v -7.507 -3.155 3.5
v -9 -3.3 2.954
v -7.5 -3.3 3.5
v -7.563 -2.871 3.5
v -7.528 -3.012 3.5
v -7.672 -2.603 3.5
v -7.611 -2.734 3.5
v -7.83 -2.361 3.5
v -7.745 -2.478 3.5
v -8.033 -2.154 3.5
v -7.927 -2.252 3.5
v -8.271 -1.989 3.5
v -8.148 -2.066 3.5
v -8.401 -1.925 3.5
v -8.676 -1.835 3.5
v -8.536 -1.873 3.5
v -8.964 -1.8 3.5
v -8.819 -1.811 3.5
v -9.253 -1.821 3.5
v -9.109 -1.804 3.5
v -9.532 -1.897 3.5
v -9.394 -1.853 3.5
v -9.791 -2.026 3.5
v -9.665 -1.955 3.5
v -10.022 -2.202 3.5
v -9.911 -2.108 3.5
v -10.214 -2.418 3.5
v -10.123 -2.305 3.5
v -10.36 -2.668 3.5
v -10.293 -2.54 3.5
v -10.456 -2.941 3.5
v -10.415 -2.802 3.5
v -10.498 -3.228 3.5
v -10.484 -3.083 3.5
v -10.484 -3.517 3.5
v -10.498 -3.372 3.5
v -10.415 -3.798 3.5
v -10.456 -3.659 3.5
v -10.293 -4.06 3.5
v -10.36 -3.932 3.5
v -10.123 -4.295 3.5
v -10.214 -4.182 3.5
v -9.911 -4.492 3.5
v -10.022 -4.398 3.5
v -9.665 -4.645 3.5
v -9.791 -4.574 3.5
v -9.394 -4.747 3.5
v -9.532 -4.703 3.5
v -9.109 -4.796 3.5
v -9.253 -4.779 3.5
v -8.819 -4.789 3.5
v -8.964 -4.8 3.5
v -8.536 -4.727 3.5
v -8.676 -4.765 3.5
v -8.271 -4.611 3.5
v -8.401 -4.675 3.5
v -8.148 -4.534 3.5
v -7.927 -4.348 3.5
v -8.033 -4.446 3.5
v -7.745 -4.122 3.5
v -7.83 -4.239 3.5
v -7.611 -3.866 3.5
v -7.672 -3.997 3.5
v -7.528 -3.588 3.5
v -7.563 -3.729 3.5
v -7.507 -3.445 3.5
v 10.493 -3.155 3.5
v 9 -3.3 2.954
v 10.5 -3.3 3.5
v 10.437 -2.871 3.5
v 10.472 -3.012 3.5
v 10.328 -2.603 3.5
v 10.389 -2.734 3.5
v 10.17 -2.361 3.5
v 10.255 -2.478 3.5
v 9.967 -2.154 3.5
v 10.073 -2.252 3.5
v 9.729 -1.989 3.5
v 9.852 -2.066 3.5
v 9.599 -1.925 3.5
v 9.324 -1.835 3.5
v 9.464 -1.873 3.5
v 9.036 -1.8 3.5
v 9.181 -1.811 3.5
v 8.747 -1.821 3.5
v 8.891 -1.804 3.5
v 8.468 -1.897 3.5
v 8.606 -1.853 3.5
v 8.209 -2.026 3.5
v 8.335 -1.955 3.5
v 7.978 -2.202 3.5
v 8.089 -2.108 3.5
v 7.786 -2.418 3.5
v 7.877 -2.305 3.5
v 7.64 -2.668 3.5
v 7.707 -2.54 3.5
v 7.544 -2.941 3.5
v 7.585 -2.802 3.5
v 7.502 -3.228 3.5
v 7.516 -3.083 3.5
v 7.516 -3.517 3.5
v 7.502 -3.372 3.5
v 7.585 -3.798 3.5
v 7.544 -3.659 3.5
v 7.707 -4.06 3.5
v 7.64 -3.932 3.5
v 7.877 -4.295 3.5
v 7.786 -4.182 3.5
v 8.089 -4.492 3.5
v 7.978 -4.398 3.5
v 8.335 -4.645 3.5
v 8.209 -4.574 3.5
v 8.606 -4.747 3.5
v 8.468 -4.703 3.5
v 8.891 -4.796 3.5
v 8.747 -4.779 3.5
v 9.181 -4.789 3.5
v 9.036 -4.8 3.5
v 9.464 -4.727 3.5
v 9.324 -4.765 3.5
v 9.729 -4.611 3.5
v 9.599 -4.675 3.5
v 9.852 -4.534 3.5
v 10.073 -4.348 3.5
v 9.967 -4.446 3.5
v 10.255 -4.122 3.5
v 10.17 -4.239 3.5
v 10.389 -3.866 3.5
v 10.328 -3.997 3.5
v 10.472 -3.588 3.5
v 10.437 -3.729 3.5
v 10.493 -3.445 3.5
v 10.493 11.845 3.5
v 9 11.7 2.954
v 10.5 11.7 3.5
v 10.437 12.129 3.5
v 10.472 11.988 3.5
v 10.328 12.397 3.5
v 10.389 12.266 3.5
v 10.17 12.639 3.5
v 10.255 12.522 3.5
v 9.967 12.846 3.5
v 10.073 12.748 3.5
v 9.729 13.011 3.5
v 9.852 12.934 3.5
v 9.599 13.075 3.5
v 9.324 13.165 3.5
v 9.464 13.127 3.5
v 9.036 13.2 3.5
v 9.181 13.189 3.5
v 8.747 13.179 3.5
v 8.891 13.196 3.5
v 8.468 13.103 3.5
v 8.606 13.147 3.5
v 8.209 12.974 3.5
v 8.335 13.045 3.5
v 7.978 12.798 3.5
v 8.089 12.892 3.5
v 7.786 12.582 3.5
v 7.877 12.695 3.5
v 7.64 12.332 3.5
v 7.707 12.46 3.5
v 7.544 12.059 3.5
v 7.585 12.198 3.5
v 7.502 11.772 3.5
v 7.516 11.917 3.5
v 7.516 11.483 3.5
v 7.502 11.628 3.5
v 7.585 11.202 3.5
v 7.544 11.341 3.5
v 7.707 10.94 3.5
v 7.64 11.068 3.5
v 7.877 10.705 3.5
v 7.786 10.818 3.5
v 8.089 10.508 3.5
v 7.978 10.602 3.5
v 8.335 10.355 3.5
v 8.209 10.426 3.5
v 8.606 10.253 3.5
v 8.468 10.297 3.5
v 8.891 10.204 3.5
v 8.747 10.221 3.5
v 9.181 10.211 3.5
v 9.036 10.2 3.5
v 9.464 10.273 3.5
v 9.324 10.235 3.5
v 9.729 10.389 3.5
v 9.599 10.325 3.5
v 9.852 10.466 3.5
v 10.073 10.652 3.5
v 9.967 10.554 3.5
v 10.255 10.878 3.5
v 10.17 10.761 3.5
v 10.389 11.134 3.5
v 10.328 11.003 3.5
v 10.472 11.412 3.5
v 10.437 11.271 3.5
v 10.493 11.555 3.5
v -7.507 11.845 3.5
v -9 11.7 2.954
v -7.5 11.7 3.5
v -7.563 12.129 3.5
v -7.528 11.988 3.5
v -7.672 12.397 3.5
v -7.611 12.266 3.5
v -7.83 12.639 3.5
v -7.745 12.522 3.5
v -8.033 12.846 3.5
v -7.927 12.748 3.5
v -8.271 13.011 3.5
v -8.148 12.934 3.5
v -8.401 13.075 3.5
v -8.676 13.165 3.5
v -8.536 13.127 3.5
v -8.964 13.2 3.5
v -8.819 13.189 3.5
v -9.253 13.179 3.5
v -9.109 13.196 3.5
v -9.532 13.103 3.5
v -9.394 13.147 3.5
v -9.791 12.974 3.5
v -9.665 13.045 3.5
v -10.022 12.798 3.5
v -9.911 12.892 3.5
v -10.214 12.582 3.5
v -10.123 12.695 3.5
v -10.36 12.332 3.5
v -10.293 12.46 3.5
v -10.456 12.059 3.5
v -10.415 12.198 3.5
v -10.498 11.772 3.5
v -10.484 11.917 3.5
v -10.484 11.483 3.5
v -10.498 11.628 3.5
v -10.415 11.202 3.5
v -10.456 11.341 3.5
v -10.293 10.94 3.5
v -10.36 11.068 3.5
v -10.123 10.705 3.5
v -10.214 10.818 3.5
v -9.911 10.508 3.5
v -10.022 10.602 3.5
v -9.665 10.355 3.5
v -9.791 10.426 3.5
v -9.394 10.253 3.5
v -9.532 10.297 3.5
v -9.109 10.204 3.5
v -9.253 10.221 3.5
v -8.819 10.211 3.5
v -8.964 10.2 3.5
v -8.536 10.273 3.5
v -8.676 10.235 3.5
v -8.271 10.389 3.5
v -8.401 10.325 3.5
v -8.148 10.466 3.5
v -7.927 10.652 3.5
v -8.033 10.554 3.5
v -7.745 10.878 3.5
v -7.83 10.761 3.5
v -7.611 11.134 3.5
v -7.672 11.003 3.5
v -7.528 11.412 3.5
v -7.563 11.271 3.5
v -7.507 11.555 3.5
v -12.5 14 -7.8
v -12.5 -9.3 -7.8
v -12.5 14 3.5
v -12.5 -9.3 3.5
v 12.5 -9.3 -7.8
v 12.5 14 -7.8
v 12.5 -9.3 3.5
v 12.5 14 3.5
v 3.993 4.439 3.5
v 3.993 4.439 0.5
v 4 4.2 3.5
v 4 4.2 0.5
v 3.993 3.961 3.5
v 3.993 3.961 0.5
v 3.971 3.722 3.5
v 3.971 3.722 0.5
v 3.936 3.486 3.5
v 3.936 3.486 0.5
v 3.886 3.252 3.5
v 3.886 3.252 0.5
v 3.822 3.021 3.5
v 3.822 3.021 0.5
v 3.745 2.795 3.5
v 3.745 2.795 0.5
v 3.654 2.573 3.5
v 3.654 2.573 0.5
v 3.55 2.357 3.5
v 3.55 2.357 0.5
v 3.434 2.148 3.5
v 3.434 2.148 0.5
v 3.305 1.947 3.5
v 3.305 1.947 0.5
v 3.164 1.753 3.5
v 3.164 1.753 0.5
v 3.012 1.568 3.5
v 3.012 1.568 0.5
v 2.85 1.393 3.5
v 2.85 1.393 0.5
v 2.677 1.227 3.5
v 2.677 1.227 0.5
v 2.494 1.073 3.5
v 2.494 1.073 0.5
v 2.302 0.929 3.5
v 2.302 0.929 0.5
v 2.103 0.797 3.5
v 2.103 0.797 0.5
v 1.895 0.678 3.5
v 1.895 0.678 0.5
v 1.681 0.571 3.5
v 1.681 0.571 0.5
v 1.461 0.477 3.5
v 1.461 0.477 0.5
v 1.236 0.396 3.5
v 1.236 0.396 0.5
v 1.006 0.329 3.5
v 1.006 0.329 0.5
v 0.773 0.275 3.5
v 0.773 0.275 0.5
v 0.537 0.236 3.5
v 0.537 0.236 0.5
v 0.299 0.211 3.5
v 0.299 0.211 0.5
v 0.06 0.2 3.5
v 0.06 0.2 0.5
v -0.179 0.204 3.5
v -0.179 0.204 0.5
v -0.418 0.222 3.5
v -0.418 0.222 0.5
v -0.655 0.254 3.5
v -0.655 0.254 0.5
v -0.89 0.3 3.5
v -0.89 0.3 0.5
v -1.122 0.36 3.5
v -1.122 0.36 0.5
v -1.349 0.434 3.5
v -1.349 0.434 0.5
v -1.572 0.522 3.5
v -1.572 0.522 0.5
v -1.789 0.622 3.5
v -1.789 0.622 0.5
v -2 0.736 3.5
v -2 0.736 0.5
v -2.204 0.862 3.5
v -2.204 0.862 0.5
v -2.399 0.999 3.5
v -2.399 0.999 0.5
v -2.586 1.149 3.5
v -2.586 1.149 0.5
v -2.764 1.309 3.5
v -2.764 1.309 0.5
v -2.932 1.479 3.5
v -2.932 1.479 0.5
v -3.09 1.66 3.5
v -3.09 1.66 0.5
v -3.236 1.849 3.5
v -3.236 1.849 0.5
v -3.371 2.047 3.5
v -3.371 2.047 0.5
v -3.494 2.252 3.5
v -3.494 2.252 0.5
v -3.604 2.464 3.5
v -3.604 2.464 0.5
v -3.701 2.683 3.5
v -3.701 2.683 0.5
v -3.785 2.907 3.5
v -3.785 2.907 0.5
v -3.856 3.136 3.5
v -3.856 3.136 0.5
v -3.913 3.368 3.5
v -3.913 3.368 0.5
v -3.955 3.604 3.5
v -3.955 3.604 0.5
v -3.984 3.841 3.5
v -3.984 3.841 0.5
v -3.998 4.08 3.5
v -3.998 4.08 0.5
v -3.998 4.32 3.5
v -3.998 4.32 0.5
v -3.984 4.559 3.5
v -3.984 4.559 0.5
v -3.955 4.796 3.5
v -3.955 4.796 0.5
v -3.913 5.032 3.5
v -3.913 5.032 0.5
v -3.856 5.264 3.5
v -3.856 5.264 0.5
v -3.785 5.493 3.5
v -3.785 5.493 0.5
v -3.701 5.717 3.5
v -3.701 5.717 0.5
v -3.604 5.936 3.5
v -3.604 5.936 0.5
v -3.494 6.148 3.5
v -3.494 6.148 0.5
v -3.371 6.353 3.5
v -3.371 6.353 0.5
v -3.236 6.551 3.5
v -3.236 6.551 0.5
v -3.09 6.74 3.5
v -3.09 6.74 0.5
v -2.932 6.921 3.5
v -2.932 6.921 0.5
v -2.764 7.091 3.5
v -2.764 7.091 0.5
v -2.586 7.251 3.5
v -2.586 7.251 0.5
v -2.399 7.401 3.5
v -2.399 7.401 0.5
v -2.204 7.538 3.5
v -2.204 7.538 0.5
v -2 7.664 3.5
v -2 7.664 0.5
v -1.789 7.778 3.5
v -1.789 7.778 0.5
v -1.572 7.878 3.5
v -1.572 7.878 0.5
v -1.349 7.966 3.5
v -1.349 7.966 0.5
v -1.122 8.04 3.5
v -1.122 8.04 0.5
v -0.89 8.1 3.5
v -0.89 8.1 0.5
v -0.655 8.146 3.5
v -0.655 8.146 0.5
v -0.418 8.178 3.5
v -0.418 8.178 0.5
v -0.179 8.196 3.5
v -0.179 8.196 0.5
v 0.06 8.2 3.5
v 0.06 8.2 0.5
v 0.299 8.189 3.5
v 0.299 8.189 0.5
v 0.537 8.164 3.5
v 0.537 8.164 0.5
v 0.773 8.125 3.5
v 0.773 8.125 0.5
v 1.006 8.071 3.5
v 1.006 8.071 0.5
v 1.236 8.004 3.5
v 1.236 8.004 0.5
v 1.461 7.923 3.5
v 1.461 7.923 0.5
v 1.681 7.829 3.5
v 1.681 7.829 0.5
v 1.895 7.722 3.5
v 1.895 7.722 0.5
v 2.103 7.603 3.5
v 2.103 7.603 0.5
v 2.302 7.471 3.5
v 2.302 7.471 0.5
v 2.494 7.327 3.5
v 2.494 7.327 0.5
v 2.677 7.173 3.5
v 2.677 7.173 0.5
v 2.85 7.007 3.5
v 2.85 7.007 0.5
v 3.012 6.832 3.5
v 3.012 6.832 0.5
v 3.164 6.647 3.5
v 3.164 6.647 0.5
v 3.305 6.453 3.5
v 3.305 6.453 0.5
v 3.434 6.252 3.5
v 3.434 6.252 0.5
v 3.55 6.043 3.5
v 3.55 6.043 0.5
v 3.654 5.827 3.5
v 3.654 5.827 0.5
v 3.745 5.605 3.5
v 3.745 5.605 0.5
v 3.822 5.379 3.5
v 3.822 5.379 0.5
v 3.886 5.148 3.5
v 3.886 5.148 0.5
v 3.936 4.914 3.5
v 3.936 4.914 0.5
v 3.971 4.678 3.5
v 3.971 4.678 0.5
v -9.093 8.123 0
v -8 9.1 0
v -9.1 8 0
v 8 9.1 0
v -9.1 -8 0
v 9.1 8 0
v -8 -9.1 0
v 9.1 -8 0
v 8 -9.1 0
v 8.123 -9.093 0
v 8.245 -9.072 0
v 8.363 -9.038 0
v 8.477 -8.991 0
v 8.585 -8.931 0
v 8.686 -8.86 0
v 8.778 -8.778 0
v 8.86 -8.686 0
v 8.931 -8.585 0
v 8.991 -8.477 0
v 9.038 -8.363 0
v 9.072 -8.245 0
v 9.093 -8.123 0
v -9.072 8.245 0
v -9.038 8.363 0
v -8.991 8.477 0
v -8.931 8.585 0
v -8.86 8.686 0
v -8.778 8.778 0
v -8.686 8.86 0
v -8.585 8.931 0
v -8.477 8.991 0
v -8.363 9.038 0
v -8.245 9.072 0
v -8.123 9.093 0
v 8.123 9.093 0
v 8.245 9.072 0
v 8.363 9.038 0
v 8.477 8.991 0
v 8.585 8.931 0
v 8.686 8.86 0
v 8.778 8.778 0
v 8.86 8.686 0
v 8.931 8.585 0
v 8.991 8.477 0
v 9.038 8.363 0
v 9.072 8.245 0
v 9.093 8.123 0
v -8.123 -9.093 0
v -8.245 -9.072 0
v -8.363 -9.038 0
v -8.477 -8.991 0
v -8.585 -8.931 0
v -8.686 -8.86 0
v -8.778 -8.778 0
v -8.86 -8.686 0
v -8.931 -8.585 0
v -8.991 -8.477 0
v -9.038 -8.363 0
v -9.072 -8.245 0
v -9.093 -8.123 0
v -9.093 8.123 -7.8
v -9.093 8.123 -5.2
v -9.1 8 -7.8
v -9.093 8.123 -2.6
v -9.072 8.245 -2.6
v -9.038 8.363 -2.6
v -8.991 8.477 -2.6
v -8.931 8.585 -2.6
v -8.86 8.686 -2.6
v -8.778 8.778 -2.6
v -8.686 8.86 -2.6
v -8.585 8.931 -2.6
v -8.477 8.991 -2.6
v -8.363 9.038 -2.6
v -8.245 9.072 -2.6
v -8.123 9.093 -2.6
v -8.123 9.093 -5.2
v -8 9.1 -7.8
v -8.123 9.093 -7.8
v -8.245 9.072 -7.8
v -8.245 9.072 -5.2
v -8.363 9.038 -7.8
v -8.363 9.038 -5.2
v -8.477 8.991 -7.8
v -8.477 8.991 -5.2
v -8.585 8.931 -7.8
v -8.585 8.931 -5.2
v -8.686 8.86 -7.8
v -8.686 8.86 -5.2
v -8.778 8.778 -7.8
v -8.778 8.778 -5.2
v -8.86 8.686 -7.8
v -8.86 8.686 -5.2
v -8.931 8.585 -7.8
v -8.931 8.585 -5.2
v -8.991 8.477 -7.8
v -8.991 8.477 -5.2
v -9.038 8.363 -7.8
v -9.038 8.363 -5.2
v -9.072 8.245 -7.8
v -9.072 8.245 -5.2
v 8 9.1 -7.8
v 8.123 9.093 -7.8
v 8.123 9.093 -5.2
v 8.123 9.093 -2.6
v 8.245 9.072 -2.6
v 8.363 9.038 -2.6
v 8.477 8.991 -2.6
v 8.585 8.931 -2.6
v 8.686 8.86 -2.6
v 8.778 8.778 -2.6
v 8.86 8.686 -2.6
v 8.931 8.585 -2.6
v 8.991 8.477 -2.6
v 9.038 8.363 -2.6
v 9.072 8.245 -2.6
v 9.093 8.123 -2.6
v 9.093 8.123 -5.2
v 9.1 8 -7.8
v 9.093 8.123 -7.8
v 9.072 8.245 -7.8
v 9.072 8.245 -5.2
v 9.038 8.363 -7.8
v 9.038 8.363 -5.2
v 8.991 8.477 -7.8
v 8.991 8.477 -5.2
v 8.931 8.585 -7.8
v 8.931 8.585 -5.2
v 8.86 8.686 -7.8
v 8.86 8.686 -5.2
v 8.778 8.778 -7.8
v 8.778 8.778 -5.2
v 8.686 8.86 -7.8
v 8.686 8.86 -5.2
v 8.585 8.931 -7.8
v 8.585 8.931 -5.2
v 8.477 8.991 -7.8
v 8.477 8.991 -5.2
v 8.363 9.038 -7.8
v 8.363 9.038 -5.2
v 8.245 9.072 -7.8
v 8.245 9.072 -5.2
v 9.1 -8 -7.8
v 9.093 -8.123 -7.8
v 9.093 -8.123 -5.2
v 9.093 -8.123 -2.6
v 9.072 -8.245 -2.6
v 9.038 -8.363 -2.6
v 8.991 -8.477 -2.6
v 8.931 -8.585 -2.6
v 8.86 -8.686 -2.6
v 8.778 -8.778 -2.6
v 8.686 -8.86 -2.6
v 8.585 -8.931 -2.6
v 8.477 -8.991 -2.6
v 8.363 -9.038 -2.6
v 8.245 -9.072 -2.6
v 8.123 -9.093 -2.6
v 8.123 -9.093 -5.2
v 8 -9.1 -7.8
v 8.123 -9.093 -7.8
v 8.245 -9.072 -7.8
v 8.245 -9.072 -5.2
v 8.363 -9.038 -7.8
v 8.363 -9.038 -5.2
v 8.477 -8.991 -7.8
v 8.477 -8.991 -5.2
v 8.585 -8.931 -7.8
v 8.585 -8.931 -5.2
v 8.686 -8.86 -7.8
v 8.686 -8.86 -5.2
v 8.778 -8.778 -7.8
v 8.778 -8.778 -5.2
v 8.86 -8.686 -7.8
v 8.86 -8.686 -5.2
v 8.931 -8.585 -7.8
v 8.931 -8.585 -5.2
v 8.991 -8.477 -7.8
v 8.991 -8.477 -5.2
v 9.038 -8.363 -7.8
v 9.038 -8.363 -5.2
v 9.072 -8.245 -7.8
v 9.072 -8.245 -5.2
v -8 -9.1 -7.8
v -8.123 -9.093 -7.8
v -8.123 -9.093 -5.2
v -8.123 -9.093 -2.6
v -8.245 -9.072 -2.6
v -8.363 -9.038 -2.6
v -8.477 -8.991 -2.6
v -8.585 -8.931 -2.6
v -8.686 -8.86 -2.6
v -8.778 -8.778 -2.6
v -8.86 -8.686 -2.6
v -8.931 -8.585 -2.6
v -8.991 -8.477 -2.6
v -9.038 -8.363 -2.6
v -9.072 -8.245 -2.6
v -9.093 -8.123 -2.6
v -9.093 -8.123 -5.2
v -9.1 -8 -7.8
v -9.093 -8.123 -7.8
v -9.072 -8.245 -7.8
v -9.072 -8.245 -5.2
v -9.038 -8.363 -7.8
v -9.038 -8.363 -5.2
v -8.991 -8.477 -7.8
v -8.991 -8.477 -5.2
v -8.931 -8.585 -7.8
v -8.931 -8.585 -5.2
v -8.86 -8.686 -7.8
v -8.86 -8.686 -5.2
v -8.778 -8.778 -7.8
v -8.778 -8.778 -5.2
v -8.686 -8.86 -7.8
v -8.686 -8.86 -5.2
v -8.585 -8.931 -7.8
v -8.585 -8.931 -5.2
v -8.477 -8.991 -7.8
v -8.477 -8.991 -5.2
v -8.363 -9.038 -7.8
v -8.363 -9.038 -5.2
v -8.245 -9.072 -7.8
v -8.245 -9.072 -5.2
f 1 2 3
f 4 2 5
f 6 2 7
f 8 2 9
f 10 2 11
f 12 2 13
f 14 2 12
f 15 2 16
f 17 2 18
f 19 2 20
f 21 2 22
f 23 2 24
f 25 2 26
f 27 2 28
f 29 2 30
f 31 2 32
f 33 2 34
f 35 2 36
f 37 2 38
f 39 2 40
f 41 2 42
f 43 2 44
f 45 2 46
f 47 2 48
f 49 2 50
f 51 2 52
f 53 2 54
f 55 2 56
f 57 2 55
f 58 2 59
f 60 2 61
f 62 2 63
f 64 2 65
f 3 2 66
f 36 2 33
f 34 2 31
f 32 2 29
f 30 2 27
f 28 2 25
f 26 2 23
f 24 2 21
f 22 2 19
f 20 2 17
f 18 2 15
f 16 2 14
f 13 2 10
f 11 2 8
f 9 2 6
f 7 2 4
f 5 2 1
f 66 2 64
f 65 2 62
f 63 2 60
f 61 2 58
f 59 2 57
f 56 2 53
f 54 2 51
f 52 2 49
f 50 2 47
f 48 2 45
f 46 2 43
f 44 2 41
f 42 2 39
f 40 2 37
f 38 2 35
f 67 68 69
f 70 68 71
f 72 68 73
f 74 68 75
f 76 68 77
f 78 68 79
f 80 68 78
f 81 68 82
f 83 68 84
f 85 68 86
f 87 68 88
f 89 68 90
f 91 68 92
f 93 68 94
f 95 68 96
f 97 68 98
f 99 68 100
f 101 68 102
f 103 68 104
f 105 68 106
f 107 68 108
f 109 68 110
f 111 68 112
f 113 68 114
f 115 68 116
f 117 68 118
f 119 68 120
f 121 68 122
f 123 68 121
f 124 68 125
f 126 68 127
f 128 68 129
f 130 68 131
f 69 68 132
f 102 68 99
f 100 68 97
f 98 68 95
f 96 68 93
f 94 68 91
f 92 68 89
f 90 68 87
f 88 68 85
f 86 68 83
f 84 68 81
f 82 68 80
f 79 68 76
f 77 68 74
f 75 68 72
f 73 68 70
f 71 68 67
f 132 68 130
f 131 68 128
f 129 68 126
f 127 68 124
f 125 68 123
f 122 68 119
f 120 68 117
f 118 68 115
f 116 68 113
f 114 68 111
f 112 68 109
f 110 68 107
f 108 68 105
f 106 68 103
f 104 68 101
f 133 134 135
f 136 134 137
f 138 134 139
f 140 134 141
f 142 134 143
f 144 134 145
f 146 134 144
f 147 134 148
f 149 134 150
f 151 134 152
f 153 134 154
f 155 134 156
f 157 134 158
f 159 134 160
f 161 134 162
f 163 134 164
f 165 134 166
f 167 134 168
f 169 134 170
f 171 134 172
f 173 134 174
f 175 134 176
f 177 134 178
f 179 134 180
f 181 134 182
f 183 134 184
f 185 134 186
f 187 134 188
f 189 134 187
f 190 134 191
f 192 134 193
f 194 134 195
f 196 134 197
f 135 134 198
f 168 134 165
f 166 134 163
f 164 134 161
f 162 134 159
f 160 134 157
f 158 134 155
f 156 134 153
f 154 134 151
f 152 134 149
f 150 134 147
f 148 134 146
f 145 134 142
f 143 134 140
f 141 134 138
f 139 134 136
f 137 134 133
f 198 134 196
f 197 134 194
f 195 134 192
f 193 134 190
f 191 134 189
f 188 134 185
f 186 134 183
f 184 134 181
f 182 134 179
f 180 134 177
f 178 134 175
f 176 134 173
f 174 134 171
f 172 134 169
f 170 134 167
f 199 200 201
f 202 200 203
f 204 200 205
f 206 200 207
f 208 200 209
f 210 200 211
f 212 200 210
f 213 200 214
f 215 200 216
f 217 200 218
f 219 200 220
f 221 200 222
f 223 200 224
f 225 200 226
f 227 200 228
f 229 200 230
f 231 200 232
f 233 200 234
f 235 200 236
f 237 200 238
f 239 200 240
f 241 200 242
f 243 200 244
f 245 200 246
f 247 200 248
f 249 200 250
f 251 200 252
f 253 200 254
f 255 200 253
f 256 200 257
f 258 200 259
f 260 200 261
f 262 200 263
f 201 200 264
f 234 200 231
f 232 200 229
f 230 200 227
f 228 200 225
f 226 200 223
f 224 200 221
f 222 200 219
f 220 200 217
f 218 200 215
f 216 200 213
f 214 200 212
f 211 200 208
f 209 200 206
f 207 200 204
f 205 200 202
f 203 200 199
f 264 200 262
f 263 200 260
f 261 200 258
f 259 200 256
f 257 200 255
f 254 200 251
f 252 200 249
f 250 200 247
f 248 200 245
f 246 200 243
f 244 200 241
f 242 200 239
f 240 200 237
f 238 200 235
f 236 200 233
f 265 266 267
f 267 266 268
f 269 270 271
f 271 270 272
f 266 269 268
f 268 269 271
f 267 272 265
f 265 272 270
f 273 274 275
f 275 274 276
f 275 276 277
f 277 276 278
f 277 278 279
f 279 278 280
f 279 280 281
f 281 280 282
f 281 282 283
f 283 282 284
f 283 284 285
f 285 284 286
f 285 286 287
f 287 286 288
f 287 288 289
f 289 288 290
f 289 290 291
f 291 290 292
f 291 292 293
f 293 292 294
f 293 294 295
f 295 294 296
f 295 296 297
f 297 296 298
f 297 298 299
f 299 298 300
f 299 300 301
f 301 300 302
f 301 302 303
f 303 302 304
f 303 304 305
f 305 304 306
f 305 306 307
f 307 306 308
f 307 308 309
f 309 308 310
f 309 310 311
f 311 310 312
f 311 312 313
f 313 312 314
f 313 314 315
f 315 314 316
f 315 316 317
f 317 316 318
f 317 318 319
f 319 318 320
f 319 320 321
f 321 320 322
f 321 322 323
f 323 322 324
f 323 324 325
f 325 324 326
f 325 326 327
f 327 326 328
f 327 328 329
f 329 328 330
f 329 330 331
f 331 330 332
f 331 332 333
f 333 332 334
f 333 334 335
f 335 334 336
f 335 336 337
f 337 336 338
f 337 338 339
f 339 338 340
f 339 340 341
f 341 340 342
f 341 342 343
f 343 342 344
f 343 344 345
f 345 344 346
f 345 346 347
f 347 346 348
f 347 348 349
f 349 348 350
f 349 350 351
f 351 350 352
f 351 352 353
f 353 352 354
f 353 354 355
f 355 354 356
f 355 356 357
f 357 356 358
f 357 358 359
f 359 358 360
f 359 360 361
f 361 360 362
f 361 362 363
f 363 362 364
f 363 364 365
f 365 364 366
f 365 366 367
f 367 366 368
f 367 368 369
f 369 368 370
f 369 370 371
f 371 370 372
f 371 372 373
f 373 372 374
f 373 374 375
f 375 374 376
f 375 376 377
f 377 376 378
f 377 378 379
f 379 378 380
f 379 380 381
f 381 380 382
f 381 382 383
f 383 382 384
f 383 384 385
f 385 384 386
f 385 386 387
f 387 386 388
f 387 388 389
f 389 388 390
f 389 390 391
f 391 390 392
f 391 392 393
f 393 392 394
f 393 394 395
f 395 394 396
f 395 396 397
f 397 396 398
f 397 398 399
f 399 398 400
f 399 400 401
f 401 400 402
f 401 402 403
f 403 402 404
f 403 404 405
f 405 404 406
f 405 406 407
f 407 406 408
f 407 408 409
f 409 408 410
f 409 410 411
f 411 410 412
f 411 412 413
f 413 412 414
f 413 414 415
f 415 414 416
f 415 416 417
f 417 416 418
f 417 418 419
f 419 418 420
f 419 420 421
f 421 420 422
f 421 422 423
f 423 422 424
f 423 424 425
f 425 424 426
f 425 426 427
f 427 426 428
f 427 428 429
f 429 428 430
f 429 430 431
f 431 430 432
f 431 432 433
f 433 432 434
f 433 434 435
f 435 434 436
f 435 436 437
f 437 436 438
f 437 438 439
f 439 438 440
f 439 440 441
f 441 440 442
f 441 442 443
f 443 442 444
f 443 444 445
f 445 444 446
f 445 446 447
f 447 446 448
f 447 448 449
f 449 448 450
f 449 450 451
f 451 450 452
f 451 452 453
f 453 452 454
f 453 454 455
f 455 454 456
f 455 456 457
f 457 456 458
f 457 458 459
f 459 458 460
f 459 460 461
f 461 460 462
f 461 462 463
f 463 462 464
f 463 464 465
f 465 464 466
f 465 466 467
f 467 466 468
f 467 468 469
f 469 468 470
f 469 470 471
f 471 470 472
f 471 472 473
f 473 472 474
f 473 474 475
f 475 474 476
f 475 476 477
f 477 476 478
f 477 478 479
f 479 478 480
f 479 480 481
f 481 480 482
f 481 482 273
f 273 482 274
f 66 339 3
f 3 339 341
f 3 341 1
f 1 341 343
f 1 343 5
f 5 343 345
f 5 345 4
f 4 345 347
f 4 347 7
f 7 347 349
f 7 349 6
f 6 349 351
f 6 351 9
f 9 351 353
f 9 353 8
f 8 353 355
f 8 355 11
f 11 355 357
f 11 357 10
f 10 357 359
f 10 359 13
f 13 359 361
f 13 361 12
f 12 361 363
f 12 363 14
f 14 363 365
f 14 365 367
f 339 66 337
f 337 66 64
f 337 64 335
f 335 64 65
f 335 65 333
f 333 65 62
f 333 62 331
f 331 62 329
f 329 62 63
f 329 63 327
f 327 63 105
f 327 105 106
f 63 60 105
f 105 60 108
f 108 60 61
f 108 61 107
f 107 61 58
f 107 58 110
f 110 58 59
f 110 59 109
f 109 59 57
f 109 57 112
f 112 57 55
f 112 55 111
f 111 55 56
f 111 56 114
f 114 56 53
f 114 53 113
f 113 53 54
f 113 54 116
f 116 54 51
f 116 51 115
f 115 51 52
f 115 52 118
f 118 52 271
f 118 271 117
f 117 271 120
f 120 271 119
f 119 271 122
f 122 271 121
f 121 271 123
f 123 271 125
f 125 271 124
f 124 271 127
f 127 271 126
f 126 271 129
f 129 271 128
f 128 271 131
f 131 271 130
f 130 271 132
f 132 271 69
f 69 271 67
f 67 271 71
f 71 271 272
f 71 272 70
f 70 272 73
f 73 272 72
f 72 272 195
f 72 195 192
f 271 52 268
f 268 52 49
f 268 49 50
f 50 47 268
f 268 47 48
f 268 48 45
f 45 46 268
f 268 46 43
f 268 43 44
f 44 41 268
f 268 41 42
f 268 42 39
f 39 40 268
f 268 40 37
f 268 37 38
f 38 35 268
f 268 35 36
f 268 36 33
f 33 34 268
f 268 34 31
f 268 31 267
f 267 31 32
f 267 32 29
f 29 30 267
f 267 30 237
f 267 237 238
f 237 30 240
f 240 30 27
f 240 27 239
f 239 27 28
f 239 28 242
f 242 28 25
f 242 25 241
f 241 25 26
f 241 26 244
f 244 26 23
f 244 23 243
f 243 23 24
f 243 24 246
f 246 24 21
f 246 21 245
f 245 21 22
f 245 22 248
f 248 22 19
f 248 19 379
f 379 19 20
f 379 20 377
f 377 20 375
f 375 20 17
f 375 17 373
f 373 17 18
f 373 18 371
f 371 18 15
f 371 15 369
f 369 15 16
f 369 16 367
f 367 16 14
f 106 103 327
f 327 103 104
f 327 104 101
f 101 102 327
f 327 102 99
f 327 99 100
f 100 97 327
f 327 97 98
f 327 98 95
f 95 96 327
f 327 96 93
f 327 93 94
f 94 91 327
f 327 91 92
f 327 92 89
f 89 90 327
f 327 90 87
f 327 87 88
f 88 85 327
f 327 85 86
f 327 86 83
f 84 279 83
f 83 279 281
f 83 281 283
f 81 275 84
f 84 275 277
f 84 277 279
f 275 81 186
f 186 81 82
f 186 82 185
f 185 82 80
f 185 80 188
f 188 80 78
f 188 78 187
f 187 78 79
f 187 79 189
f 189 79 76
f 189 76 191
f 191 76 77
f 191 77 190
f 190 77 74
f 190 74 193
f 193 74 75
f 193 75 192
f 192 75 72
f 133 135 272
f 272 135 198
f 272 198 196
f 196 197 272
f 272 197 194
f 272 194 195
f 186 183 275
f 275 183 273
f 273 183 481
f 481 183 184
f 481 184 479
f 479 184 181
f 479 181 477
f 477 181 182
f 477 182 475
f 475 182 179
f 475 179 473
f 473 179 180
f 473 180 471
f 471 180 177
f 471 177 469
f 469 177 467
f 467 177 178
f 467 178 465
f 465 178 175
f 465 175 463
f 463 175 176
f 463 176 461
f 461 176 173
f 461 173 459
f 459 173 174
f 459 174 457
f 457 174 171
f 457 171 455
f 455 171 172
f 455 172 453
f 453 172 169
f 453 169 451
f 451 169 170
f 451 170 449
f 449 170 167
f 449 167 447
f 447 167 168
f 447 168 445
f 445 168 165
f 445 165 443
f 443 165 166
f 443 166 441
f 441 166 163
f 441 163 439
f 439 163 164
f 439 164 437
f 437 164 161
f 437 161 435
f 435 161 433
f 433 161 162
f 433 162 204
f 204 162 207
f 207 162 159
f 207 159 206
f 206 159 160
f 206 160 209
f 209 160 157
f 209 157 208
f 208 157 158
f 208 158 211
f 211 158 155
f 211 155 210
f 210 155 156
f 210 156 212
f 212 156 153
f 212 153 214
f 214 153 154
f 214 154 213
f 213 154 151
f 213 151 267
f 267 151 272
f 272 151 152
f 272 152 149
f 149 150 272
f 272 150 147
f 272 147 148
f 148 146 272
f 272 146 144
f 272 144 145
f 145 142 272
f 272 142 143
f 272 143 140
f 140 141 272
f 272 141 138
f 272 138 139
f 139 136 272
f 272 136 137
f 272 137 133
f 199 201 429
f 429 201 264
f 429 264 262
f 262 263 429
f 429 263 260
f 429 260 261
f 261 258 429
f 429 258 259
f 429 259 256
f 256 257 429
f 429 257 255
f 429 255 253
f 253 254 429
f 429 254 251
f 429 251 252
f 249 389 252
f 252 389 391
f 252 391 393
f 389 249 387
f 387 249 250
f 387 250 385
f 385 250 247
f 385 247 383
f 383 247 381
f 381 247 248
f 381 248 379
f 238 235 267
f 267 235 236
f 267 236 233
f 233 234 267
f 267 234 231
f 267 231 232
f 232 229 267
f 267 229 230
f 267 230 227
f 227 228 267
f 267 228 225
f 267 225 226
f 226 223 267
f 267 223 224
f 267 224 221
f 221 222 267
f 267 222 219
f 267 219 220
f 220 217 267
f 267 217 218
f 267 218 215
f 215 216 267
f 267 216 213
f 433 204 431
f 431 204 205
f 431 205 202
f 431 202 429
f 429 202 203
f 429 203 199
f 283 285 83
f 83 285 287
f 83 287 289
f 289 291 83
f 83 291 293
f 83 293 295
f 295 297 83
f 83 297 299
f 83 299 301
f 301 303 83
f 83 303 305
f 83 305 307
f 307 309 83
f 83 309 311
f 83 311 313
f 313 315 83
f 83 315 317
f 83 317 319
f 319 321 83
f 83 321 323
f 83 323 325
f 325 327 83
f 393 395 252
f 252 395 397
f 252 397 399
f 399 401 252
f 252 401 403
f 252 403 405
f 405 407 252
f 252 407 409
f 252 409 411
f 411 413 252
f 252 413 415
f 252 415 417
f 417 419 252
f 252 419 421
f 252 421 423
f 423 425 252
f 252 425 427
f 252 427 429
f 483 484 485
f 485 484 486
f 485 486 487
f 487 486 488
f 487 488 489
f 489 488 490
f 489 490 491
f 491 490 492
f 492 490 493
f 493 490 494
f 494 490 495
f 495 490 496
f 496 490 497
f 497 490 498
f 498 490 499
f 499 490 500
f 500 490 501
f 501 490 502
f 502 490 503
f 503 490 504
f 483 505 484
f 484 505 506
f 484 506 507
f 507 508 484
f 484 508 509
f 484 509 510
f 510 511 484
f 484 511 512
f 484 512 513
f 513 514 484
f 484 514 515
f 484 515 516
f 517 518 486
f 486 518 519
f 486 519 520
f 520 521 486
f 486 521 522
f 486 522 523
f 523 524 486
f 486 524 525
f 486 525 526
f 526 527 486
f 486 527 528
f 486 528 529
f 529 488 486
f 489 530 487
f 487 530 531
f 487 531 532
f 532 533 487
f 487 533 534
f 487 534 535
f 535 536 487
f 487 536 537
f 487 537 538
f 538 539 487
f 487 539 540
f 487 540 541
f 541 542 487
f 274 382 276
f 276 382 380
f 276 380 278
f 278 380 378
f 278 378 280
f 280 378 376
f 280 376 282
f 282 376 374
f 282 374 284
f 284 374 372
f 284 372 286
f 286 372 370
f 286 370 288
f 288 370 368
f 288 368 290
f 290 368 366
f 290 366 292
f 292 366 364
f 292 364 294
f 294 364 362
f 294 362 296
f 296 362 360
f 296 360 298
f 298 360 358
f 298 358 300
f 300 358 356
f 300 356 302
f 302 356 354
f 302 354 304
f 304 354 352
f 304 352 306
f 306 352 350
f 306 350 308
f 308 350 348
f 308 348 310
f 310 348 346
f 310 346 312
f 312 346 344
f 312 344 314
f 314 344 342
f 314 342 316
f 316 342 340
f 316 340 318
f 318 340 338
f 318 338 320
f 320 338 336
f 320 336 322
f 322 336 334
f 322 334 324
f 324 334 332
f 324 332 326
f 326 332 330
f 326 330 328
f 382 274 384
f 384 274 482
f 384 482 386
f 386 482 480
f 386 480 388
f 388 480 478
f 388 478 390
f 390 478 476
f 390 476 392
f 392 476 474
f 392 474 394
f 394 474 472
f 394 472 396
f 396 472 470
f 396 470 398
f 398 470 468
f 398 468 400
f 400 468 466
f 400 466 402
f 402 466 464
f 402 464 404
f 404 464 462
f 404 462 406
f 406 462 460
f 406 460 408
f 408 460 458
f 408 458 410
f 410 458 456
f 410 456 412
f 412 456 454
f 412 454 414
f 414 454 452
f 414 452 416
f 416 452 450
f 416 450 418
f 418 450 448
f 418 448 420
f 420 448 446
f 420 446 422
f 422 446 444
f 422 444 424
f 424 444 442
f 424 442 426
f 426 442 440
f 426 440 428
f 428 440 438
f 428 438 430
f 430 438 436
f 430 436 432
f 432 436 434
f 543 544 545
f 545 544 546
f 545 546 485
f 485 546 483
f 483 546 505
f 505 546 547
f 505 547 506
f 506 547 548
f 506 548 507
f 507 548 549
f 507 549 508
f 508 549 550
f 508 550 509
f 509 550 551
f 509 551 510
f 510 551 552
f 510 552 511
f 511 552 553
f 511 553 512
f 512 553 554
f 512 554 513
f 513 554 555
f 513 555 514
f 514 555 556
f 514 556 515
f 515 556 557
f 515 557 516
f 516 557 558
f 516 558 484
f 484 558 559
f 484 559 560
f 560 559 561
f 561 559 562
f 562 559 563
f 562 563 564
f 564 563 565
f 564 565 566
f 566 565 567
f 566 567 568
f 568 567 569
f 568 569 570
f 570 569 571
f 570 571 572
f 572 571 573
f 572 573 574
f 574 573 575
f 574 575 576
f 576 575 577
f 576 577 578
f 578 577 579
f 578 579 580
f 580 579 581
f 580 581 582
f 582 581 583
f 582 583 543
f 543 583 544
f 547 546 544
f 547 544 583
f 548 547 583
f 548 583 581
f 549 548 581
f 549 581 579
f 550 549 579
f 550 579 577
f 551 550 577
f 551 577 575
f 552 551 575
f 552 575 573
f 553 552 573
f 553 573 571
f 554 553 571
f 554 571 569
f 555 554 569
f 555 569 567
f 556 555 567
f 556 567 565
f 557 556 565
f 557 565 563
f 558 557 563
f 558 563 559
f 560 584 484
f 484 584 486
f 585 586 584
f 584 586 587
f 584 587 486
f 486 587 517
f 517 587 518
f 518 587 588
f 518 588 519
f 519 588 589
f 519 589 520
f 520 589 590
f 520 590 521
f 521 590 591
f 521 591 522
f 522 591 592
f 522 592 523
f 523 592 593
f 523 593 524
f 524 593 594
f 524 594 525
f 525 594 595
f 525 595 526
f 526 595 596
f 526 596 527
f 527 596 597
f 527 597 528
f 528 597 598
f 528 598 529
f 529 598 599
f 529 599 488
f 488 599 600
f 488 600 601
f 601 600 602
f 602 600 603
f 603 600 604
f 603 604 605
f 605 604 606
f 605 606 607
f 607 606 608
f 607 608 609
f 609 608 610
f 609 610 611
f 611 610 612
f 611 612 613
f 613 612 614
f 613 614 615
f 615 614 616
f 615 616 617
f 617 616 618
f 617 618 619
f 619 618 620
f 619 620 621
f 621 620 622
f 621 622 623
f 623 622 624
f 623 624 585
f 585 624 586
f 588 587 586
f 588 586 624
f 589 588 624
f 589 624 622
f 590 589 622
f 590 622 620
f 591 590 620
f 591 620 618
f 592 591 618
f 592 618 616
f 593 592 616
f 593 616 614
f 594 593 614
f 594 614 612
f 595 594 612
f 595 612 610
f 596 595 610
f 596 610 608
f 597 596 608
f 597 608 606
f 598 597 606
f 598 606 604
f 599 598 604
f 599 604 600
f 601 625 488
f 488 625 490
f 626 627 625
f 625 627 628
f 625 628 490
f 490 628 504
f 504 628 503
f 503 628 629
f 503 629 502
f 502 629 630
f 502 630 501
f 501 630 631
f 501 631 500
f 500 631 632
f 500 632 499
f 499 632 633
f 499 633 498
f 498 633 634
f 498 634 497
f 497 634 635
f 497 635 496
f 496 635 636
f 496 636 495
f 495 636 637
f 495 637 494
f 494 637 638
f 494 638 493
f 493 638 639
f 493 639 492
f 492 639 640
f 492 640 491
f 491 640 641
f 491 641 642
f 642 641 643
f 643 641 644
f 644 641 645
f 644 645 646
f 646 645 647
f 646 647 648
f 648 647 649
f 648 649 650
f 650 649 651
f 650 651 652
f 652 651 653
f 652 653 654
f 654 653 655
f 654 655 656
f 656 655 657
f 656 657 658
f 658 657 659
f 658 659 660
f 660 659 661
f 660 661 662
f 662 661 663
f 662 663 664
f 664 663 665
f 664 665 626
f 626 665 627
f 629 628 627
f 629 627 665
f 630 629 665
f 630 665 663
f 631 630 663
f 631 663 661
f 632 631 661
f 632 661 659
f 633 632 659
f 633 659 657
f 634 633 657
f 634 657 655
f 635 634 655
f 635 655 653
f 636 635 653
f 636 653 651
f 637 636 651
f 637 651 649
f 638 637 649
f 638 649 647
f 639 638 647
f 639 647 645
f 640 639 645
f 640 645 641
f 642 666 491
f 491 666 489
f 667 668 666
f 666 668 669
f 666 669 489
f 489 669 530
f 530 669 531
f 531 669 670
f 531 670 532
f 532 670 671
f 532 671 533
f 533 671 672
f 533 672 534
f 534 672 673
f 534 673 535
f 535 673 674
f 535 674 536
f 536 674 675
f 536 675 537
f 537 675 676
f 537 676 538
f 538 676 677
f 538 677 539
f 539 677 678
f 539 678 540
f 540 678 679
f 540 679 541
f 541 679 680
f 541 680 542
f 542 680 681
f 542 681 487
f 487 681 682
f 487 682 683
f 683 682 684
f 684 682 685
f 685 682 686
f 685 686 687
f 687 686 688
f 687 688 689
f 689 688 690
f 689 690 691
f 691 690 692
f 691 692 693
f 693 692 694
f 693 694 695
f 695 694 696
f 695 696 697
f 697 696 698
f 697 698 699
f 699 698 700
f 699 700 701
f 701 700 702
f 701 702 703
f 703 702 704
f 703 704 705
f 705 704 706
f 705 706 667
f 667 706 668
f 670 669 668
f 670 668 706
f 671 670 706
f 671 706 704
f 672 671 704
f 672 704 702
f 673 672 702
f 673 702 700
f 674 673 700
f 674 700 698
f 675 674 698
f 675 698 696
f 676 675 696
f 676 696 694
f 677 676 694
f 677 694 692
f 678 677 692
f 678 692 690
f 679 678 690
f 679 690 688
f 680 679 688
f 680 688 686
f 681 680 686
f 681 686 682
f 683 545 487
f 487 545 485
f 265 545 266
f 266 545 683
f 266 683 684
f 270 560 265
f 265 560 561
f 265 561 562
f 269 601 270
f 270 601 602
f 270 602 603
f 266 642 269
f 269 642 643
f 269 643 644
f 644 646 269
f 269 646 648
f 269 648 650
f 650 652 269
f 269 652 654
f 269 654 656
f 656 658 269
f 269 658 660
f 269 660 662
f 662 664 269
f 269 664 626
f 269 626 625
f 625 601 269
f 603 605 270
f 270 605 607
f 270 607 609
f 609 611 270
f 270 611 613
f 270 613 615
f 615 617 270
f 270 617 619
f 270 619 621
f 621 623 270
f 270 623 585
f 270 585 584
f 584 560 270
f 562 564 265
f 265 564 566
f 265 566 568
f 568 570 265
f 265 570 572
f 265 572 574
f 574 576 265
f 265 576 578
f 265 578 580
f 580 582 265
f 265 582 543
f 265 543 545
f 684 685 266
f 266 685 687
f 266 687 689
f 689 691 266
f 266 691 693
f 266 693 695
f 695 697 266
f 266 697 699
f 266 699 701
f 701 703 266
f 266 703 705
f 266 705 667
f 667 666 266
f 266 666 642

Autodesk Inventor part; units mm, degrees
ref_plane "YZ Plane" through (0, 0, 0) normal (1, 0, 0) x (0, 1, 0)
ref_plane "XZ Plane" through (0, 0, 0) normal (0, 1, 0) x (-1, 0, 0)
sketch "Skizze1" plane through (0, 0, 0) normal (0, 0, 1) x (1, 0, 0)
  arc A0 (-9, -8) -> (-8, -9) centre (-8, -8) ccw projected
  line L0 (8, -9) -> (-8, -9) projected
  arc A1 (8, -9) -> (9, -8) centre (8, -8) ccw projected
  line L1 (9, 8) -> (9, -8) projected
  arc A2 (9, 8) -> (8, 9) centre (8, 8) ccw projected
  line L2 (-8, 9) -> (8, 9) projected
  arc A3 (-8, 9) -> (-9, 8) centre (-8, 8) ccw projected
  line L3 (-9, -8) -> (-9, 8) projected
  circle A4 centre (0, 0) radius 5.8 projected
  arc A5 (-8, 9.1) -> (-9.1, 8) centre (-8, 8) ccw
  line L4 (-8, 9.1) -> (8, 9.1)
  arc A6 (9.1, 8) -> (8, 9.1) centre (8, 8) ccw
  line L5 (9.1, 8) -> (9.1, -8)
  arc A7 (8, -9.1) -> (9.1, -8) centre (8, -8) ccw
  line L6 (8, -9.1) -> (-8, -9.1)
  arc A8 (-9.1, -8) -> (-8, -9.1) centre (-8, -8) ccw
  line L7 (-9.1, -8) -> (-9.1, 8)
  line L8 (14, 14) -> (-14, 14)
  line L9 (-14, 14) -> (-14, -14)
  line L10 (-14, -14) -> (14, -14)
  line L11 (14, -14) -> (14, 14)
  line L12 (14, 14) -> (-14, -14) construction
  line L13 (-14, 14) -> (14, -14) construction
  point P0 (0, 0)
  dimension "d0" = 0.1
  dimension "d1" = 28
  dimension "d2" = 28
ref_plane "Arbeitsebene1" through (-9, -9, -7.8) normal (0, 0, -1) x (0, 1, 0)
extrude "Extrusion1" add sketch "Skizze1" against normal up to surface (7.8 mm away) contours L11 L10 L9 L8
sketch "Skizze2" plane through (0, 0, 0) normal (0, 0, 1) x (1, 0, 0)
  line L0 (-14, 14) -> (-14, -14) projected
  line L1 (-14, -14) -> (14, -14) projected
  line L2 (14, -14) -> (14, 14) projected
  line L3 (14, 14) -> (-14, 14) projected
  line L4 (9.1, 8) -> (9.1, -8) projected
  arc A0 (8, -9.1) -> (9.1, -8) centre (8, -8) ccw projected
  line L5 (8, -9.1) -> (-8, -9.1) projected
  arc A1 (-9.1, -8) -> (-8, -9.1) centre (-8, -8) ccw projected
  line L6 (-9.1, -8) -> (-9.1, 8) projected
  arc A2 (-8, 9.1) -> (-9.1, 8) centre (-8, 8) ccw projected
  line L7 (-8, 9.1) -> (8, 9.1) projected
  arc A3 (9.1, 8) -> (8, 9.1) centre (8, 8) ccw projected
  line L8 (-7.6, 7.6) -> (-7.6, -7.6)
  line L9 (-7.6, -7.6) -> (7.6, -7.6)
  line L10 (7.6, -7.6) -> (7.6, 7.6)
  line L11 (7.6, 7.6) -> (-7.6, 7.6)
  point P0 (0, 0)
  dimension "d5" = 1.5
extrude "Extrusion2" add sketch "Skizze2" along normal blind 0.5 contours L3 L2 L1 L0 | L4 A0 L5 A1 L6 A2 L7 A3 | L11 L10 L9 L8
sketch "Skizze3" plane through (0, 0, 0.5) normal (0, 0, 1) x (1, 0, 0)
  line L0 (-14, -14) -> (14, -14) projected
  line L1 (14, -14) -> (14, 14) projected
  line L2 (14, 14) -> (-14, 14) projected
  line L3 (-14, 14) -> (-14, -14) projected
  circle A0 centre (0, 4.2) radius 4
  circle A1 centre (-9, -3.3) radius 2 projected
  circle A2 centre (-9, 11.7) radius 2 projected
  line L4 (-15, 21.2) -> (-15, 16.05) projected
  line L5 (-15, 16.05) -> (-12, 16.05) projected
  line L6 (-12, 16.05) -> (-12, 13.55) projected
  line L7 (-12, 13.55) -> (-15, 13.55) projected
  line L8 (-15, 13.55) -> (-15, 1.15) projected
  line L9 (-15, 1.15) -> (-12, 1.15) projected
  line L10 (-12, 1.15) -> (-12, -1.35) projected
  line L11 (-12, -1.35) -> (-15, -1.35) projected
  line L12 (-15, -1.35) -> (-15, -5.8) projected
  line L13 (-15, -5.8) -> (0, -5.8) projected
  line L14 (0, -5.8) -> (0, 0.2) projected
  arc A3 (0, 8.2) -> (0, 0.2) centre (0, 4.2) ccw projected
  line L15 (0, 8.2) -> (0, 21.2) projected
  line L16 (-15, 21.2) -> (0, 21.2) projected
  dimension "d8" = 8
extrude "Extrusion3" add sketch "Skizze3" along normal blind 3 contours L3 L13 L14 A0 L15 L2 L1 L0 | L3 L11 L10 L9 L7 L6 L2 L15 A0 L14 L13 | L3 L9 L10 L11 | L6 L7 L3 L2 | A1 | A2
sketch "Skizze4" plane through (0, 0, 3.5) normal (0, 0, 1) x (1, 0, 0)
  line L0 (14, -14) -> (14, 14) projected
  line L1 (14, 14) -> (-14, 14) projected
  line L2 (-14, 14) -> (-14, -14) projected
  line L3 (-14, -14) -> (14, -14) projected
  circle A0 centre (0, 4.2) radius 4 projected
  line L4 (5, -10.8) -> (-5, -10.8) projected
  line L5 (-14, 14) -> (-14, -14) projected
  line L6 (14, -14) -> (-14, -14)
  line L7 (-14, -14) -> (-14, -9.3)
  line L8 (-14, -9.3) -> (14, -9.3)
  line L9 (14, -9.3) -> (14, -14)
  line L10 (-14, 14) -> (-12.5, 14)
  line L11 (-12.5, 14) -> (-12.5, -9.3)
  line L12 (-12.5, -9.3) -> (-14, -9.3)
  line L13 (-14, -9.3) -> (-14, 14)
  line L14 (14, -14) -> (14, 14) projected
  line L15 (14, 14) -> (12.5, 14)
  line L16 (12.5, 14) -> (12.5, -9.3)
  line L17 (12.5, -9.3) -> (14, -9.3)
  line L18 (14, -9.3) -> (14, 14)
  point P0 (0, 0)
  point P1 (14, -9.3)
  point P2 (12.5, 14)
  dimension "d11" = 1.5
  dimension "d22" = 1.5
  dimension "d23" = 1.5
extrude "Extrusion4" cut sketch "Skizze4" against normal through all contours L3 L2 L8 L0 | L8 L16 L1 L0 | L2 L1 L11 L8
sketch "Skizze5" plane through (0, 0, 3.5) normal (0, 0, 1) x (1, 0, 0)
  circle A0 centre (-9, 11.7) radius 2 projected
  circle A1 centre (-9, -3.3) radius 2.5019 projected
  line L0 (-9, -3.3) -> (9, -3.3)
  line L1 (9, -3.3) -> (9, 11.7)
  line L2 (9, 11.7) -> (-9, 11.7)
  line L3 (-9, 11.7) -> (-9, -3.3)
  dimension "d25" = 18
hole "Bohrung1" at (9, -3.3, 3.5) at (9, 11.7, 3.5) at (-9, -3.3, 3.5) at (-9, 11.7, 3.5) direction (0, 0, -1) diameter 3 depth 0.0001 tip angle 140
properties part number "10_SOOCT_VCM_Mount_v3"
